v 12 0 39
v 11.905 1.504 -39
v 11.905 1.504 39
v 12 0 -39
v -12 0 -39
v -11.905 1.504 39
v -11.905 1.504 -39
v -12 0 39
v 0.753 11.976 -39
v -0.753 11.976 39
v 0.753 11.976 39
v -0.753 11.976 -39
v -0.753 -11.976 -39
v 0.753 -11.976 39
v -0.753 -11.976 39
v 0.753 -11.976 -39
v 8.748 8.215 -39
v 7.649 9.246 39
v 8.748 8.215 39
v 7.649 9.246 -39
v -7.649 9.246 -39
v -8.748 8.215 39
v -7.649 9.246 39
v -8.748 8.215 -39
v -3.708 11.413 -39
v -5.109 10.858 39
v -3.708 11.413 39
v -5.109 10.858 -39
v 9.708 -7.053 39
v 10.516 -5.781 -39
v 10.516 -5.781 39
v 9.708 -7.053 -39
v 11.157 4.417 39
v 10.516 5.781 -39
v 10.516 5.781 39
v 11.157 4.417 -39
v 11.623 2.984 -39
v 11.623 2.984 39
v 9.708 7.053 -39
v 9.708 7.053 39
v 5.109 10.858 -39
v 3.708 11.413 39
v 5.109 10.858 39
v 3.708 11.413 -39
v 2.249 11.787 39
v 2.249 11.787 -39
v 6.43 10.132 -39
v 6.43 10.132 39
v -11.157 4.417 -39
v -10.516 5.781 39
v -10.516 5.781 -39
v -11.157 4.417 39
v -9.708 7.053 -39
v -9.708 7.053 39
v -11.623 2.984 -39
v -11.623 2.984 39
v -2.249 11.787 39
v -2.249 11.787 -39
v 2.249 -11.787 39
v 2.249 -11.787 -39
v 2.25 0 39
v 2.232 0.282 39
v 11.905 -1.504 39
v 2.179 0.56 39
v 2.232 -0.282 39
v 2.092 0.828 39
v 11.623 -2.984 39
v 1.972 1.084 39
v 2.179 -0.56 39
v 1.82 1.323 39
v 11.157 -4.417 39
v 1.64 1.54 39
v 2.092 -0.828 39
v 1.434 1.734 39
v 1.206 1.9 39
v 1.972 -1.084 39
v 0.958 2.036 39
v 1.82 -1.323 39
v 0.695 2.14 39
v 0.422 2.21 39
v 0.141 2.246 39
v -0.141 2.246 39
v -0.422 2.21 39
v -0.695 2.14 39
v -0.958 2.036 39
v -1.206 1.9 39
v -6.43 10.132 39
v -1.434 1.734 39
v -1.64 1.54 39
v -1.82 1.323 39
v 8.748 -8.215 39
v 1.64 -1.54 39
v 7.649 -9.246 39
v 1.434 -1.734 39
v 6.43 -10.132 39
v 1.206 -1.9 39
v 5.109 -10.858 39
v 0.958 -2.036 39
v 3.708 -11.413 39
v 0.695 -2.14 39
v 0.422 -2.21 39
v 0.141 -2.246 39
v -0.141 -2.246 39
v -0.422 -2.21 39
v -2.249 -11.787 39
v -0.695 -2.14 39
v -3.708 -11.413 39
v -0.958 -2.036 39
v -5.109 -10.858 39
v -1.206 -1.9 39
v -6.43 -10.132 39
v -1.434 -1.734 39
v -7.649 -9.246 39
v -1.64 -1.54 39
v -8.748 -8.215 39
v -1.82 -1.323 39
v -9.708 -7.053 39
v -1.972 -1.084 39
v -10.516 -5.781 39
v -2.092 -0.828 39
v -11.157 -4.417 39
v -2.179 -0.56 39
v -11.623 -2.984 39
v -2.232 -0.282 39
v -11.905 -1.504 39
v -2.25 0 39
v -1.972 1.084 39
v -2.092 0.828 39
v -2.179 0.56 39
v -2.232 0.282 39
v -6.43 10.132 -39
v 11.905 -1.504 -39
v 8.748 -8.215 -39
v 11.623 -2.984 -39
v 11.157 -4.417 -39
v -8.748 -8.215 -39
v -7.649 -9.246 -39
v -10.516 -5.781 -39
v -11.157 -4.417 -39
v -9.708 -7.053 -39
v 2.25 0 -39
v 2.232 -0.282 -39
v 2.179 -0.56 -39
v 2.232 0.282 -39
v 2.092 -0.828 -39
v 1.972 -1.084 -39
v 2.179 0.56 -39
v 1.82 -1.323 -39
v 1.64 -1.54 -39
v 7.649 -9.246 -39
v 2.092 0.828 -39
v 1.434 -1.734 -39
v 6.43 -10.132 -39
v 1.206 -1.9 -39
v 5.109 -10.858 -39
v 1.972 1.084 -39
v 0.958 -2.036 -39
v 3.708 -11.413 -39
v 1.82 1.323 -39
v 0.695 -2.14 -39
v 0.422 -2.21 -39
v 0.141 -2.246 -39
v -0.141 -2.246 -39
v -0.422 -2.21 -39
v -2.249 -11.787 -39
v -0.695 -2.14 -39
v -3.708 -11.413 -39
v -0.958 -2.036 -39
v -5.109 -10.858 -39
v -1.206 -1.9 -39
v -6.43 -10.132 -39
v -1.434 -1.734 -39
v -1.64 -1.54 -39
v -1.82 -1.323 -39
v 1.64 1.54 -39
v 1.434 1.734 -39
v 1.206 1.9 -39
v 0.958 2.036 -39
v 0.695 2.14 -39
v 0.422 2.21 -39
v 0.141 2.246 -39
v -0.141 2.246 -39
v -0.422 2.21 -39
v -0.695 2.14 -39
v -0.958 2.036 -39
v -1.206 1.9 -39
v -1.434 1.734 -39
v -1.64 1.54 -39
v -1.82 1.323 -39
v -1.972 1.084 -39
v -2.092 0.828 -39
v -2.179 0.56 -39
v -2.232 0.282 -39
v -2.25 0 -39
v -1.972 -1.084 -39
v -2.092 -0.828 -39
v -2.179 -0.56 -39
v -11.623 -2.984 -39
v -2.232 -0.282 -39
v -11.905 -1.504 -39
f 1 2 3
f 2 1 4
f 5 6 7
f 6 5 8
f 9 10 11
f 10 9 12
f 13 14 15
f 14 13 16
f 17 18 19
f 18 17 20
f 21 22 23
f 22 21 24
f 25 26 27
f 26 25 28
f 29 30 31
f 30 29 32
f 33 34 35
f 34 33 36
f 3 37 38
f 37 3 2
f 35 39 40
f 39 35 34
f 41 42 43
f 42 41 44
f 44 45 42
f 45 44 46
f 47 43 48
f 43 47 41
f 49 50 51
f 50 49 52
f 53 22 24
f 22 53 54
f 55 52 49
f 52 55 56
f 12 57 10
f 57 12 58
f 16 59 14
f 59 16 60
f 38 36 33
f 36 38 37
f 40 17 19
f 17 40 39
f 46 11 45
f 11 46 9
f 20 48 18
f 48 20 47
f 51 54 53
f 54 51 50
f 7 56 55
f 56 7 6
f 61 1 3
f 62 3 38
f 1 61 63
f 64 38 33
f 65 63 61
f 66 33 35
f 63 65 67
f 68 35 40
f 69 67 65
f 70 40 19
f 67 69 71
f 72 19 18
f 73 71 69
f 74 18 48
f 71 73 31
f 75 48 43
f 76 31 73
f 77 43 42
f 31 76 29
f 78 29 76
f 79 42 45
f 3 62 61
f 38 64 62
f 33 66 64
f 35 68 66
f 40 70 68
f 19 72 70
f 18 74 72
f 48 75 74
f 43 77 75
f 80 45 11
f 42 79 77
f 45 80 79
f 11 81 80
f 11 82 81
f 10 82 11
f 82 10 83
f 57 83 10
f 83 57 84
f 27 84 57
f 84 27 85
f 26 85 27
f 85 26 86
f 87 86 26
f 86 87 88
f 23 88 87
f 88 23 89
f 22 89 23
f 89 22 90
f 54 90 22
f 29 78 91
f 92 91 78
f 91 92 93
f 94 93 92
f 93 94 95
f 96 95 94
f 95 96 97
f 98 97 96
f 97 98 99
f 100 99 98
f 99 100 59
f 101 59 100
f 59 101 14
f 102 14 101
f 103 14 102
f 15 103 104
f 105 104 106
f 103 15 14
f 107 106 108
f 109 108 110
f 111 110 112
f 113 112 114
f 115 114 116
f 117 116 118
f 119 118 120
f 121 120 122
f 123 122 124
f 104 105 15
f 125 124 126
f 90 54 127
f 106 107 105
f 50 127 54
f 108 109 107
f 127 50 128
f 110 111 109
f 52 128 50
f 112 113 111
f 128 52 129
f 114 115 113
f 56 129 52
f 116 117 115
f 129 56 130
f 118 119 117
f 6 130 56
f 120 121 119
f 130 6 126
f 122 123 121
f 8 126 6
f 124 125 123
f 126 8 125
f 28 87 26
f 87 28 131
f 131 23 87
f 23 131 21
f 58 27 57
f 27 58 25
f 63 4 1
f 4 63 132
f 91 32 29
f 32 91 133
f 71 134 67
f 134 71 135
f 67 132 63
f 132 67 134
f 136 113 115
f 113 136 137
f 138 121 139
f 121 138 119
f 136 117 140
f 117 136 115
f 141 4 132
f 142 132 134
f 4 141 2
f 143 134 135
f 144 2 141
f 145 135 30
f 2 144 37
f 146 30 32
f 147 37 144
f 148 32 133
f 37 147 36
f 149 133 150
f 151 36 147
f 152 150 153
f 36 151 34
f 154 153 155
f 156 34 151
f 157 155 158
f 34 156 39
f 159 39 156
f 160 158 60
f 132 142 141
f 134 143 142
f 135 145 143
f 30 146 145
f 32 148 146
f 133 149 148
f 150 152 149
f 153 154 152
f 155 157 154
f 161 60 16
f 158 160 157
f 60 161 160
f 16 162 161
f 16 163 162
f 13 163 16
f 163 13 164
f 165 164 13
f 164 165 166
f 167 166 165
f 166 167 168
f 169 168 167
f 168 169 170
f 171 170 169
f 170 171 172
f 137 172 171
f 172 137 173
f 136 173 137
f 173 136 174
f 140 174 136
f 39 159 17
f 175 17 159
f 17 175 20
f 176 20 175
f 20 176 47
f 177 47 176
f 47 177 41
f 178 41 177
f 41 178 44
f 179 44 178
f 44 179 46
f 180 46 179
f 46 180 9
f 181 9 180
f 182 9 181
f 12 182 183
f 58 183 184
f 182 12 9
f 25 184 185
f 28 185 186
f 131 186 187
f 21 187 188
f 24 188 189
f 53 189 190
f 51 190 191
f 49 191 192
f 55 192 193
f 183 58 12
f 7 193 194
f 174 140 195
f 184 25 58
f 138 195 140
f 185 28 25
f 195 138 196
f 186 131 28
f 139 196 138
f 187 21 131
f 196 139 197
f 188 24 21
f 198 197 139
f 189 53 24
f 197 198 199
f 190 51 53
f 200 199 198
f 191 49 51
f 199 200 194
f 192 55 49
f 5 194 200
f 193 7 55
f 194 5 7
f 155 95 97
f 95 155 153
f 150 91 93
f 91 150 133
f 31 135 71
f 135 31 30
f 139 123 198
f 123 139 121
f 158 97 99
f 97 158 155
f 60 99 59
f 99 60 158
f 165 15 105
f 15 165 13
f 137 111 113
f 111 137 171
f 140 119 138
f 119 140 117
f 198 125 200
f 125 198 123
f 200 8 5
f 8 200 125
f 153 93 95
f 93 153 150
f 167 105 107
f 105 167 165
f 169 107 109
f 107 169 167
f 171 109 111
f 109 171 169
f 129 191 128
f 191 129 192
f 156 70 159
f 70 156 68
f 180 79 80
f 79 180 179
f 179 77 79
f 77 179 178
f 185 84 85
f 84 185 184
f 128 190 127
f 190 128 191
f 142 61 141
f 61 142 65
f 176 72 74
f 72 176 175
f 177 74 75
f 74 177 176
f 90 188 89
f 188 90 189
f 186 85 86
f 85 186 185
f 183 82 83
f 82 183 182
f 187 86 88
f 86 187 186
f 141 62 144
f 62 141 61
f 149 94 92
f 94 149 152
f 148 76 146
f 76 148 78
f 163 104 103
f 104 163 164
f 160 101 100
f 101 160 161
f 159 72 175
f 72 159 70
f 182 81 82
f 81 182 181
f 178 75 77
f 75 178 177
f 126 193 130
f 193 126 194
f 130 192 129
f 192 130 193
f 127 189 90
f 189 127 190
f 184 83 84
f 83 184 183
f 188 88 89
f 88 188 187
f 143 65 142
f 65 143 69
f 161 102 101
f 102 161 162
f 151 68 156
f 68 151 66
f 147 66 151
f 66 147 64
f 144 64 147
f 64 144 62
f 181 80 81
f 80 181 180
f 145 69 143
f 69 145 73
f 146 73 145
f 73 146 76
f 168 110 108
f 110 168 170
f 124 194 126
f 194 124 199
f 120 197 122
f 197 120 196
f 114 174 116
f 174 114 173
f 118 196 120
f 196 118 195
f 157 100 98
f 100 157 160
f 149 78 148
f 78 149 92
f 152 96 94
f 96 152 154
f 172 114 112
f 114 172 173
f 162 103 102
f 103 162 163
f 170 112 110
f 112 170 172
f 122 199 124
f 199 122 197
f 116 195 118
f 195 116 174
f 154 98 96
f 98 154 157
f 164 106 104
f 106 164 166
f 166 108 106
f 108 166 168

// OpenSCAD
$fn = 50;


difference() {
	union() {
		translate(v = [0, 0, -39.0000000000]) {
			cylinder(h = 78, r = 12.0000000000);
		}
	}
	union() {
		translate(v = [0, 0, -100.0000000000]) {
			cylinder(h = 200, r = 2.2500000000);
		}
	}
}
